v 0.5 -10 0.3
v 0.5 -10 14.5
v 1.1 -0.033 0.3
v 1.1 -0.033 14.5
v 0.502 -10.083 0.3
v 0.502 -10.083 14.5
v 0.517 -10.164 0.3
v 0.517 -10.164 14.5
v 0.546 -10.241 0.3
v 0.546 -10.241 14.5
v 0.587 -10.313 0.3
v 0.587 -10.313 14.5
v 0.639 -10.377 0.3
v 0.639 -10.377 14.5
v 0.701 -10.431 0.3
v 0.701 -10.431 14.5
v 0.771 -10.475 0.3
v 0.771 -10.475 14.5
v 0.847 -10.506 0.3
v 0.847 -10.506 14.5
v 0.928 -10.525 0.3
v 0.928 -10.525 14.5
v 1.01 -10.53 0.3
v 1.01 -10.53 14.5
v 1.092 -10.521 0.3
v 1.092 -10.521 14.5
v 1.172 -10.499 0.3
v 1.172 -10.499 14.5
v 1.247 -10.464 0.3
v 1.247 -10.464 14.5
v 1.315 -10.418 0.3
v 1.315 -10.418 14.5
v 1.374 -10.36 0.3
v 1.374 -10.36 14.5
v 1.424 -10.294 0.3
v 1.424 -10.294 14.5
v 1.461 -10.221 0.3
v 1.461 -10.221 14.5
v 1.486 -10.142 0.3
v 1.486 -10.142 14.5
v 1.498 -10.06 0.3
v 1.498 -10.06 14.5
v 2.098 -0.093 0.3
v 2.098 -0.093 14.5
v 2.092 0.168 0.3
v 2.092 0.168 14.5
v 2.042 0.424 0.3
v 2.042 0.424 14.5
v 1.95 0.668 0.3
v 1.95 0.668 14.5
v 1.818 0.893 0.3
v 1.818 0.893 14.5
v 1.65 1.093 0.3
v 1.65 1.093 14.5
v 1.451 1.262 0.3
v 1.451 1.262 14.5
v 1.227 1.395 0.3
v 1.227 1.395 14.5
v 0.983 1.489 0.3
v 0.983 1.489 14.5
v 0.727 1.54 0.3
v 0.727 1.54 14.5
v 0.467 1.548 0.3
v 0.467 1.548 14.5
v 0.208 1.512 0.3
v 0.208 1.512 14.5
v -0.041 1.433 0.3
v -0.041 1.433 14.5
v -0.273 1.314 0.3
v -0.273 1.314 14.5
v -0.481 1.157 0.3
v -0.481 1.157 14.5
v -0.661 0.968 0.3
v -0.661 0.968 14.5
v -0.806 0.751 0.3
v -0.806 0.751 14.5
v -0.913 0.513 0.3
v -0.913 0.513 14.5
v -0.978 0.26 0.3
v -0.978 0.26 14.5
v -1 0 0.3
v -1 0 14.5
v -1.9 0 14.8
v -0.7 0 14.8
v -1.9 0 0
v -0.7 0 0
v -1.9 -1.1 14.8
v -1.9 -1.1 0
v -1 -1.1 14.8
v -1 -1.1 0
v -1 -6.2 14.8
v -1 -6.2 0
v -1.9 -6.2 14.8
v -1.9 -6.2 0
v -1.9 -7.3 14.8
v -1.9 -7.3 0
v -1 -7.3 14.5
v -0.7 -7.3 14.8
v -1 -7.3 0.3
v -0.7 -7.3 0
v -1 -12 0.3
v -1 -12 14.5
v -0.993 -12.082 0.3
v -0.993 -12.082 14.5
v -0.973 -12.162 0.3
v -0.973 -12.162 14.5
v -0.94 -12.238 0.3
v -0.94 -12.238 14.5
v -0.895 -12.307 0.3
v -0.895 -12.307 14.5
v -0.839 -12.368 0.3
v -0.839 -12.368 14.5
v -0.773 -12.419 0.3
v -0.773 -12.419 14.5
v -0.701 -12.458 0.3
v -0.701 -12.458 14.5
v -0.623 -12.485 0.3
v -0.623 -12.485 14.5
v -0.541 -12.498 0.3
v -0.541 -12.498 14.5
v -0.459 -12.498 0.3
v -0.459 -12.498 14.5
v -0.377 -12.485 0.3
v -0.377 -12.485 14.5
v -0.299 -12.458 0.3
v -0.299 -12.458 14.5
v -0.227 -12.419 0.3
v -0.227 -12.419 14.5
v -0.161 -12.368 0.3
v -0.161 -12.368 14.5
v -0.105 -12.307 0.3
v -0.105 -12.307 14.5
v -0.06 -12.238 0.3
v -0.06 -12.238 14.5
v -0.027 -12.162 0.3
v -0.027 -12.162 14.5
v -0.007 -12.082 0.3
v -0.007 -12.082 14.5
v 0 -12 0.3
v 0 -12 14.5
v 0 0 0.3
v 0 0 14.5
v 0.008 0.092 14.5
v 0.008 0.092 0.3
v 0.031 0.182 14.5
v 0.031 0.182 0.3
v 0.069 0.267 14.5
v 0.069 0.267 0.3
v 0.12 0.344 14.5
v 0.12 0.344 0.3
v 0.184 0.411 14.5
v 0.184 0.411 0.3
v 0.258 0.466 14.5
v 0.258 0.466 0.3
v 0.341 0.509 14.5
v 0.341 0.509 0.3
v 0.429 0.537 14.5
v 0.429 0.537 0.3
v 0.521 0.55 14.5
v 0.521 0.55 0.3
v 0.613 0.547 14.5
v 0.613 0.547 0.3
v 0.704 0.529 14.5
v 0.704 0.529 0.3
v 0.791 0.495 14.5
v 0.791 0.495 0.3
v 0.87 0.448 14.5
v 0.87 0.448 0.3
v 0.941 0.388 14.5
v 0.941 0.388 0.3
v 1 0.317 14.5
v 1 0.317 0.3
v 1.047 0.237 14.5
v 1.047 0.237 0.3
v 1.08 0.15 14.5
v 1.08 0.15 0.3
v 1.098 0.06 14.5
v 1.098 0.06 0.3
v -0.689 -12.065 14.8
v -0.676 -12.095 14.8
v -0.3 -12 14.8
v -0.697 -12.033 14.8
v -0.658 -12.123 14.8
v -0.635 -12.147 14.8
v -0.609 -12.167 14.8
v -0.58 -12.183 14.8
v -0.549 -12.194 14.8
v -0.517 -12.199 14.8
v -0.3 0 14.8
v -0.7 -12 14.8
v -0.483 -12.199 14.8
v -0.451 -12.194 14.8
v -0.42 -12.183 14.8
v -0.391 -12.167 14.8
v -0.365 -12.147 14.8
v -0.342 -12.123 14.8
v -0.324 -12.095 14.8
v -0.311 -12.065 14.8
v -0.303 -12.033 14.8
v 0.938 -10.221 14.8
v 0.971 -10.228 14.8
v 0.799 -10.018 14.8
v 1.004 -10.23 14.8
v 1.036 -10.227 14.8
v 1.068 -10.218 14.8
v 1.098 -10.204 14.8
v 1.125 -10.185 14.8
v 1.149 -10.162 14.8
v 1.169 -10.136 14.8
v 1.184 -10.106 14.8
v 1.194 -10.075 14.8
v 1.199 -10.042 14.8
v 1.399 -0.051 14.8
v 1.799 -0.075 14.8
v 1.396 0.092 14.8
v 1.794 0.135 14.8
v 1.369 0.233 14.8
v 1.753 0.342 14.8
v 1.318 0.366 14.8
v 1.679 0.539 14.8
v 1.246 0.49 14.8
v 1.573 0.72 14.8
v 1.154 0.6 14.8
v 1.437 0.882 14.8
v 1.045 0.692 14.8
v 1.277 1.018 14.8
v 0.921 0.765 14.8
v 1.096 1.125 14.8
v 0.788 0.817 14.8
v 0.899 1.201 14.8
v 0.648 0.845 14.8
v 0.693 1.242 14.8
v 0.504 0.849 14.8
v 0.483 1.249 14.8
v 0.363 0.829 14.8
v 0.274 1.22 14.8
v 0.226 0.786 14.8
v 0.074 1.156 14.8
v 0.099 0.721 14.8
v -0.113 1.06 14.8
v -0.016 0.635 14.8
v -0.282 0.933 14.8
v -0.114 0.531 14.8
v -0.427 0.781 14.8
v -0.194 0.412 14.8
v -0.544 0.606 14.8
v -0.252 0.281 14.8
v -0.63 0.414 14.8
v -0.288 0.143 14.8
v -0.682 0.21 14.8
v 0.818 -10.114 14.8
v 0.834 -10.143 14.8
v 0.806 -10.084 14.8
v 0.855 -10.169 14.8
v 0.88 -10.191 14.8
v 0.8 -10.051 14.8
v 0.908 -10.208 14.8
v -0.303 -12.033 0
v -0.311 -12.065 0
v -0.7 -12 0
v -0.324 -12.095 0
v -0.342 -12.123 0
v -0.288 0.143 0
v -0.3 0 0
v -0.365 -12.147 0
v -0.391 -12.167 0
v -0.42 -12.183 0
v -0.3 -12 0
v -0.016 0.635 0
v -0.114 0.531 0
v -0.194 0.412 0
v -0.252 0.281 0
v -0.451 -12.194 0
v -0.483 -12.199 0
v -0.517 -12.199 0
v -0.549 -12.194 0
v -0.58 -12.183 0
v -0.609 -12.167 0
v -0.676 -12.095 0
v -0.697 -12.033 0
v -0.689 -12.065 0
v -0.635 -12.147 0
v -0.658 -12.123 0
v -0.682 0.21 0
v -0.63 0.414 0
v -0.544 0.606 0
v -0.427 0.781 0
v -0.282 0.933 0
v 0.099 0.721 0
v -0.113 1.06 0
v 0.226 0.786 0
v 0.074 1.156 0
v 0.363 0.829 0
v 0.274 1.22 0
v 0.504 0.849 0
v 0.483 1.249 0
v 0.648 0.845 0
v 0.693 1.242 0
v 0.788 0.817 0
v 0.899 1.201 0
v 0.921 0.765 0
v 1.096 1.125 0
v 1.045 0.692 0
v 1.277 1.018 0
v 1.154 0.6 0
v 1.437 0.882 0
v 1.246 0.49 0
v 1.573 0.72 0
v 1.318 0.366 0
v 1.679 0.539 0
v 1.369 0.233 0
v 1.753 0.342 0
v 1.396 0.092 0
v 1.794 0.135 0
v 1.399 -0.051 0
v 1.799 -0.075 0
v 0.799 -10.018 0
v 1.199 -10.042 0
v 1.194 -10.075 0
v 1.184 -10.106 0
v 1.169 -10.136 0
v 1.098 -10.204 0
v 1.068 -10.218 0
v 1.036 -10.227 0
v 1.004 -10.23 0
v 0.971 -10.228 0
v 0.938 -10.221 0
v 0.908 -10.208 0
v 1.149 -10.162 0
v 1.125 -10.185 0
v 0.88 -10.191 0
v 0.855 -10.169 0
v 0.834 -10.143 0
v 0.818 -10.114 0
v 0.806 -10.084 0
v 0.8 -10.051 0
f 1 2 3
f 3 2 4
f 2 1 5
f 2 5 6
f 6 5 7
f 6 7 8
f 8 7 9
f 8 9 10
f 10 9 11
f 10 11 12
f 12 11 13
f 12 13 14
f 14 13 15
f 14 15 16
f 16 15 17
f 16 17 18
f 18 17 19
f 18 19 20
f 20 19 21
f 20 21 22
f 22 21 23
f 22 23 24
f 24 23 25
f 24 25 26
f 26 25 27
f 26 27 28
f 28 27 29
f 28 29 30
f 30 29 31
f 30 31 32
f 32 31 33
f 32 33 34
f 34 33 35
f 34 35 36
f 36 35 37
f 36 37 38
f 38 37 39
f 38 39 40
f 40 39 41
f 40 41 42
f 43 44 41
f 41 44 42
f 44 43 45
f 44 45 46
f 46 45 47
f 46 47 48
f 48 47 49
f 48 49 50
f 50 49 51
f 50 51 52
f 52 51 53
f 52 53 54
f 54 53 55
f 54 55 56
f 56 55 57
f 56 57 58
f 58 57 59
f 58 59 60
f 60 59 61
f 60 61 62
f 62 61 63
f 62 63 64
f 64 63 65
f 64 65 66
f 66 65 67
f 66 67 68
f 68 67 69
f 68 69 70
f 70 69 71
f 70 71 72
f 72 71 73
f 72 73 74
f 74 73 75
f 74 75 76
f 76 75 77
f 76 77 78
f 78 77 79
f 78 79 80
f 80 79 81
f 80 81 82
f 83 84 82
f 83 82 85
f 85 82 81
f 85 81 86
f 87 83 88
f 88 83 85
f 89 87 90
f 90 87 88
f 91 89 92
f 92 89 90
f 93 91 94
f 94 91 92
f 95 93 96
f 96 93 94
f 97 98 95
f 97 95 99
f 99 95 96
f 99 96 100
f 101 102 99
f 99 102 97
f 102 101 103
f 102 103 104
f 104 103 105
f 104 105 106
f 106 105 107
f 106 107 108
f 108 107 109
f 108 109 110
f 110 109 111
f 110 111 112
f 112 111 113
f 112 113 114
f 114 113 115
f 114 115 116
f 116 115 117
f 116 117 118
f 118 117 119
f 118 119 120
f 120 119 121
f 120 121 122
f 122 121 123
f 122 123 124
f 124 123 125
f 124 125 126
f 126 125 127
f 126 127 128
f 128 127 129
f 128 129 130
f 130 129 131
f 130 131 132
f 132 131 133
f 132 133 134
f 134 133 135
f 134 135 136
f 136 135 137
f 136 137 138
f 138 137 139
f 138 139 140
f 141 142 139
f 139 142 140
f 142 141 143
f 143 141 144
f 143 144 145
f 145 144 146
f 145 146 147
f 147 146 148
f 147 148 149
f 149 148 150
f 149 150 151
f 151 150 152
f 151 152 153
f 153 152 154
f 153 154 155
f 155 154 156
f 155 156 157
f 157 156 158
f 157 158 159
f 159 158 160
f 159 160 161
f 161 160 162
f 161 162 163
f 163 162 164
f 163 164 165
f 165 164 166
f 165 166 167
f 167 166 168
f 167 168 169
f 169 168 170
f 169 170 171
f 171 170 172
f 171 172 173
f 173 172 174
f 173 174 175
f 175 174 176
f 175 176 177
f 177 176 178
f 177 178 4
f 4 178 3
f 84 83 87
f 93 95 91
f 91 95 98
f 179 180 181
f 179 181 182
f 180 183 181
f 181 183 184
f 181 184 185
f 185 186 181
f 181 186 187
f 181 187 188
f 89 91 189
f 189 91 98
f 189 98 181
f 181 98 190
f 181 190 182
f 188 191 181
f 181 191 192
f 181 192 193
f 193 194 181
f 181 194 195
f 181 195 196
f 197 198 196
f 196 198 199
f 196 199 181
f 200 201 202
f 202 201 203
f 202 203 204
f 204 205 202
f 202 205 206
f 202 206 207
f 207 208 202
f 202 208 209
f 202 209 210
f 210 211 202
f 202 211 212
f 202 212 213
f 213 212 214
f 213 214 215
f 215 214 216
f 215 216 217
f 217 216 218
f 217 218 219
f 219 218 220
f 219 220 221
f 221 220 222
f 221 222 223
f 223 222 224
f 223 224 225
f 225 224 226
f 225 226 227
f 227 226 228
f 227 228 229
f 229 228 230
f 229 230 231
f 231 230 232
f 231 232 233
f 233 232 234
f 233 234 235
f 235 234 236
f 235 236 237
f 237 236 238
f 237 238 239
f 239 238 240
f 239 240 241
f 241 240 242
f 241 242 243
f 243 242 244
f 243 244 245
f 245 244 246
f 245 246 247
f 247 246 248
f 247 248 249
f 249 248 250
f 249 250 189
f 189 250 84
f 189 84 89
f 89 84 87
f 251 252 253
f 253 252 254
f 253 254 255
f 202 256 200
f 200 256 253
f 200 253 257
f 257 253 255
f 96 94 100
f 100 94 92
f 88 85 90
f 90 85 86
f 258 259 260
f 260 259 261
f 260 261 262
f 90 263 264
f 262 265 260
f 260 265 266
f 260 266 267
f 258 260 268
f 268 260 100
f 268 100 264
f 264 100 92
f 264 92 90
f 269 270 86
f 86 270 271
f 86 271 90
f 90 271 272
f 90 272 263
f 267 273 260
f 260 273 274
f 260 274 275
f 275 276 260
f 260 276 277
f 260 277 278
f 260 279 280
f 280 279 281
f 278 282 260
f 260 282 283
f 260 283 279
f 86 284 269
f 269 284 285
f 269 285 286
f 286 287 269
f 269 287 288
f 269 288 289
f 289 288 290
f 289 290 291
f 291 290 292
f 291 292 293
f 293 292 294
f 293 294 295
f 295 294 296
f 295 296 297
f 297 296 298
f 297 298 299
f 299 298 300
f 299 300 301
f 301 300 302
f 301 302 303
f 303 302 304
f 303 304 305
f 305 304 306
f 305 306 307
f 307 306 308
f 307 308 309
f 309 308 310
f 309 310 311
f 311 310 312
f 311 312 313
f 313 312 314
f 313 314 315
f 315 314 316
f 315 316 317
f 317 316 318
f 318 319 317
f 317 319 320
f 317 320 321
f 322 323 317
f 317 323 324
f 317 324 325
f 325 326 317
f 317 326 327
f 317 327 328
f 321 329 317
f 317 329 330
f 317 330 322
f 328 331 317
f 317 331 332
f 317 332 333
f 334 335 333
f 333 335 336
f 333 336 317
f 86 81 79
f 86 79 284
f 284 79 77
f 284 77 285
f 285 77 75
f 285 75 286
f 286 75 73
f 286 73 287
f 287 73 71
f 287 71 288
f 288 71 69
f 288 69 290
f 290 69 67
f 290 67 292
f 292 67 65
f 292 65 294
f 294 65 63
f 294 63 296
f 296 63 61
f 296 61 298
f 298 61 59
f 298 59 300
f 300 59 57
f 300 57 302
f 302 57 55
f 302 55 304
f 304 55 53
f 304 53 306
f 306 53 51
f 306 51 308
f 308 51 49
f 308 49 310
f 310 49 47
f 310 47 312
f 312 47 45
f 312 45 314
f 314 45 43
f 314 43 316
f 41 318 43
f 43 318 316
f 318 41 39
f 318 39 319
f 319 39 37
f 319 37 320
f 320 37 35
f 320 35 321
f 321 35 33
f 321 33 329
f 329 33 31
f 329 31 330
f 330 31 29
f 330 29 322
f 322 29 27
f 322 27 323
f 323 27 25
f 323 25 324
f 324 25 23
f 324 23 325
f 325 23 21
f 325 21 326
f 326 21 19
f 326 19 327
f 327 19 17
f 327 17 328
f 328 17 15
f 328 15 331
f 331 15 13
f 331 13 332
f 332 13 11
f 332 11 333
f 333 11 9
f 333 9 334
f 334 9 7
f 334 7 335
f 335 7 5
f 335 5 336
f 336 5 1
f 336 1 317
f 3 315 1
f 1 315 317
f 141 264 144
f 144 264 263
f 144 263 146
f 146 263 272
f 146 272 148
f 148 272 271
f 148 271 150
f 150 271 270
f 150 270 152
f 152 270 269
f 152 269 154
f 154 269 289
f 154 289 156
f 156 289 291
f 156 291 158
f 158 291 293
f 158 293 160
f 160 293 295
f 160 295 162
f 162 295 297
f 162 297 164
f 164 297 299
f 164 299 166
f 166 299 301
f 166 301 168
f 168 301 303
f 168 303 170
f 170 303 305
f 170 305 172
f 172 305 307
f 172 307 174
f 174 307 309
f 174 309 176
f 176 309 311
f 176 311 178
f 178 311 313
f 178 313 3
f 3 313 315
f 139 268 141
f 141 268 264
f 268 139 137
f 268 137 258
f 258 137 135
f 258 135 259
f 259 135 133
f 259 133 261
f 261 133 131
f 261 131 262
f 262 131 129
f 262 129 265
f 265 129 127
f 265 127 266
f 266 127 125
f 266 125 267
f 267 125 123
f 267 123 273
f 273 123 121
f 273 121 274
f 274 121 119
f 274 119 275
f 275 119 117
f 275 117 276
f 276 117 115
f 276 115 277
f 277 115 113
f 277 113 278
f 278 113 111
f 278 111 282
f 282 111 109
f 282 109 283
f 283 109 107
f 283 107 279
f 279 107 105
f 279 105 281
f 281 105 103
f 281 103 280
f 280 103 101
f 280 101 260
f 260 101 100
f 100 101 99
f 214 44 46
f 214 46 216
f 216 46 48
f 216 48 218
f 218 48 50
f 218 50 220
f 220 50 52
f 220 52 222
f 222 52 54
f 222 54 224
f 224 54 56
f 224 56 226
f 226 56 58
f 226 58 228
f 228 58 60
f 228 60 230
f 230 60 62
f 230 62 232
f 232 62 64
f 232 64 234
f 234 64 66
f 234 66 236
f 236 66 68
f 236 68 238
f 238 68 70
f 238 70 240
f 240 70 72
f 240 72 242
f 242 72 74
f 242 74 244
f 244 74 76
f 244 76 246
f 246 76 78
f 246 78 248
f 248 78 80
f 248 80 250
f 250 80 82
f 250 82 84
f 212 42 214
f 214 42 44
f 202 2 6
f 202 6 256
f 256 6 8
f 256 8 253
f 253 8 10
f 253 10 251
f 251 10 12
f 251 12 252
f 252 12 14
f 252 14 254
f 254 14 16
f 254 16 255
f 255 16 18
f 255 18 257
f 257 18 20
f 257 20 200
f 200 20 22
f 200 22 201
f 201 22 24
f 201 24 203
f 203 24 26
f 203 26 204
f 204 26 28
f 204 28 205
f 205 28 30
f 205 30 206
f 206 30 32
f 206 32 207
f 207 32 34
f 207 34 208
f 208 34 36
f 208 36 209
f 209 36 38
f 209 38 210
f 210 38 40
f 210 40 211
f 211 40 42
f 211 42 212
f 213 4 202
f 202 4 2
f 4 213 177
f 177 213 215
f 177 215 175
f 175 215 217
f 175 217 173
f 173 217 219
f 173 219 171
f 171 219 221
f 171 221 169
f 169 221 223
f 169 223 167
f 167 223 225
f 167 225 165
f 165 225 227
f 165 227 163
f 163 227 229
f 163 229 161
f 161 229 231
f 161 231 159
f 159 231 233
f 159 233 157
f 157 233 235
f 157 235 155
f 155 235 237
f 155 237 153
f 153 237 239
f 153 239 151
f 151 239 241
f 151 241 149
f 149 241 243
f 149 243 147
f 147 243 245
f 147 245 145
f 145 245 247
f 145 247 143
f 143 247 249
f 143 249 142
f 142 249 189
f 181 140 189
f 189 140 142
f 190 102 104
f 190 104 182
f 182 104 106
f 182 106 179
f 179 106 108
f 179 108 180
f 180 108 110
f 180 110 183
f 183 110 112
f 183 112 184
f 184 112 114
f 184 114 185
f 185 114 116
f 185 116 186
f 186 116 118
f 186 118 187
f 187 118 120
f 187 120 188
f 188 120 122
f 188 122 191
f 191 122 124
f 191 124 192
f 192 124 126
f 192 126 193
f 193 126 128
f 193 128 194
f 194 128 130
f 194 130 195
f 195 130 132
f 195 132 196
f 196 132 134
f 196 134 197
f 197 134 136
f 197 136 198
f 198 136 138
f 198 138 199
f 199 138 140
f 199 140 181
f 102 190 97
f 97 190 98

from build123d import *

# Parameters (mm, degrees)
SKETCH1_W           = 0.9
SKETCH1_H           = 1.1
BOSS_EXTRUDE1_DEPTH = 14.8
CHAMFER1_SIZE       = 0.3


with BuildPart() as part:
    # Sketch1 → Boss-Extrude1 (new body)
    with BuildSketch(Plane.XY):
        with BuildLine():
            Line((1.1, -0.033079582), (0.5, -10))
            ThreePointArc((0.5, -10), (0.969051295, -10.529141647), (1.498192942, -10.060090353))
            Line((1.498192942, -10.060090353), (2.098192942, -0.093169935))
            ThreePointArc((2.098192942, -0.093169935), (0.597103418, 1.549796772), (-1, 0))
            Line((-1, 0), (-1, -12))
            ThreePointArc((-1, -12), (-0.5, -12.5), (0, -12))
            Line((0, -12), (0, 0))
            ThreePointArc((0, 0), (0.567044659, 0.550248639), (1.1, -0.033079582))
        make_face()
        with Locations((-1.45, -0.55)):
            Rectangle(SKETCH1_W, SKETCH1_H)
        with Locations((-1.45, -6.75)):
            Rectangle(SKETCH1_W, SKETCH1_H)
    extrude(amount=BOSS_EXTRUDE1_DEPTH)

    # Chamfer1
    chamfer1_edges = [part.edges().sort_by_distance(p)[0] for p in [
        (0.969051295, -10.529141647, 14.8),
        (1.798192942, -5.076630144, 14.8),
        (0.567044659, 0.550248639, 0),
        (0, -6, 0),
        (-0.5, -12.5, 0),
        (-1, -9.65, 0),
        (0.597103418, 1.549796772, 14.8),
        (0.597103418, 1.549796772, 0),
        (1.798192942, -5.076630144, 0),
        (0.969051295, -10.529141647, 0),
        (0.8, -5.016539791, 0),
        (0.8, -5.016539791, 14.8),
        (-1, -9.65, 14.8),
        (-0.5, -12.5, 14.8),
        (0, -6, 14.8),
        (0.567044659, 0.550248639, 14.8),
    ]]
    chamfer(chamfer1_edges, length=CHAMFER1_SIZE)


solid = part.part
